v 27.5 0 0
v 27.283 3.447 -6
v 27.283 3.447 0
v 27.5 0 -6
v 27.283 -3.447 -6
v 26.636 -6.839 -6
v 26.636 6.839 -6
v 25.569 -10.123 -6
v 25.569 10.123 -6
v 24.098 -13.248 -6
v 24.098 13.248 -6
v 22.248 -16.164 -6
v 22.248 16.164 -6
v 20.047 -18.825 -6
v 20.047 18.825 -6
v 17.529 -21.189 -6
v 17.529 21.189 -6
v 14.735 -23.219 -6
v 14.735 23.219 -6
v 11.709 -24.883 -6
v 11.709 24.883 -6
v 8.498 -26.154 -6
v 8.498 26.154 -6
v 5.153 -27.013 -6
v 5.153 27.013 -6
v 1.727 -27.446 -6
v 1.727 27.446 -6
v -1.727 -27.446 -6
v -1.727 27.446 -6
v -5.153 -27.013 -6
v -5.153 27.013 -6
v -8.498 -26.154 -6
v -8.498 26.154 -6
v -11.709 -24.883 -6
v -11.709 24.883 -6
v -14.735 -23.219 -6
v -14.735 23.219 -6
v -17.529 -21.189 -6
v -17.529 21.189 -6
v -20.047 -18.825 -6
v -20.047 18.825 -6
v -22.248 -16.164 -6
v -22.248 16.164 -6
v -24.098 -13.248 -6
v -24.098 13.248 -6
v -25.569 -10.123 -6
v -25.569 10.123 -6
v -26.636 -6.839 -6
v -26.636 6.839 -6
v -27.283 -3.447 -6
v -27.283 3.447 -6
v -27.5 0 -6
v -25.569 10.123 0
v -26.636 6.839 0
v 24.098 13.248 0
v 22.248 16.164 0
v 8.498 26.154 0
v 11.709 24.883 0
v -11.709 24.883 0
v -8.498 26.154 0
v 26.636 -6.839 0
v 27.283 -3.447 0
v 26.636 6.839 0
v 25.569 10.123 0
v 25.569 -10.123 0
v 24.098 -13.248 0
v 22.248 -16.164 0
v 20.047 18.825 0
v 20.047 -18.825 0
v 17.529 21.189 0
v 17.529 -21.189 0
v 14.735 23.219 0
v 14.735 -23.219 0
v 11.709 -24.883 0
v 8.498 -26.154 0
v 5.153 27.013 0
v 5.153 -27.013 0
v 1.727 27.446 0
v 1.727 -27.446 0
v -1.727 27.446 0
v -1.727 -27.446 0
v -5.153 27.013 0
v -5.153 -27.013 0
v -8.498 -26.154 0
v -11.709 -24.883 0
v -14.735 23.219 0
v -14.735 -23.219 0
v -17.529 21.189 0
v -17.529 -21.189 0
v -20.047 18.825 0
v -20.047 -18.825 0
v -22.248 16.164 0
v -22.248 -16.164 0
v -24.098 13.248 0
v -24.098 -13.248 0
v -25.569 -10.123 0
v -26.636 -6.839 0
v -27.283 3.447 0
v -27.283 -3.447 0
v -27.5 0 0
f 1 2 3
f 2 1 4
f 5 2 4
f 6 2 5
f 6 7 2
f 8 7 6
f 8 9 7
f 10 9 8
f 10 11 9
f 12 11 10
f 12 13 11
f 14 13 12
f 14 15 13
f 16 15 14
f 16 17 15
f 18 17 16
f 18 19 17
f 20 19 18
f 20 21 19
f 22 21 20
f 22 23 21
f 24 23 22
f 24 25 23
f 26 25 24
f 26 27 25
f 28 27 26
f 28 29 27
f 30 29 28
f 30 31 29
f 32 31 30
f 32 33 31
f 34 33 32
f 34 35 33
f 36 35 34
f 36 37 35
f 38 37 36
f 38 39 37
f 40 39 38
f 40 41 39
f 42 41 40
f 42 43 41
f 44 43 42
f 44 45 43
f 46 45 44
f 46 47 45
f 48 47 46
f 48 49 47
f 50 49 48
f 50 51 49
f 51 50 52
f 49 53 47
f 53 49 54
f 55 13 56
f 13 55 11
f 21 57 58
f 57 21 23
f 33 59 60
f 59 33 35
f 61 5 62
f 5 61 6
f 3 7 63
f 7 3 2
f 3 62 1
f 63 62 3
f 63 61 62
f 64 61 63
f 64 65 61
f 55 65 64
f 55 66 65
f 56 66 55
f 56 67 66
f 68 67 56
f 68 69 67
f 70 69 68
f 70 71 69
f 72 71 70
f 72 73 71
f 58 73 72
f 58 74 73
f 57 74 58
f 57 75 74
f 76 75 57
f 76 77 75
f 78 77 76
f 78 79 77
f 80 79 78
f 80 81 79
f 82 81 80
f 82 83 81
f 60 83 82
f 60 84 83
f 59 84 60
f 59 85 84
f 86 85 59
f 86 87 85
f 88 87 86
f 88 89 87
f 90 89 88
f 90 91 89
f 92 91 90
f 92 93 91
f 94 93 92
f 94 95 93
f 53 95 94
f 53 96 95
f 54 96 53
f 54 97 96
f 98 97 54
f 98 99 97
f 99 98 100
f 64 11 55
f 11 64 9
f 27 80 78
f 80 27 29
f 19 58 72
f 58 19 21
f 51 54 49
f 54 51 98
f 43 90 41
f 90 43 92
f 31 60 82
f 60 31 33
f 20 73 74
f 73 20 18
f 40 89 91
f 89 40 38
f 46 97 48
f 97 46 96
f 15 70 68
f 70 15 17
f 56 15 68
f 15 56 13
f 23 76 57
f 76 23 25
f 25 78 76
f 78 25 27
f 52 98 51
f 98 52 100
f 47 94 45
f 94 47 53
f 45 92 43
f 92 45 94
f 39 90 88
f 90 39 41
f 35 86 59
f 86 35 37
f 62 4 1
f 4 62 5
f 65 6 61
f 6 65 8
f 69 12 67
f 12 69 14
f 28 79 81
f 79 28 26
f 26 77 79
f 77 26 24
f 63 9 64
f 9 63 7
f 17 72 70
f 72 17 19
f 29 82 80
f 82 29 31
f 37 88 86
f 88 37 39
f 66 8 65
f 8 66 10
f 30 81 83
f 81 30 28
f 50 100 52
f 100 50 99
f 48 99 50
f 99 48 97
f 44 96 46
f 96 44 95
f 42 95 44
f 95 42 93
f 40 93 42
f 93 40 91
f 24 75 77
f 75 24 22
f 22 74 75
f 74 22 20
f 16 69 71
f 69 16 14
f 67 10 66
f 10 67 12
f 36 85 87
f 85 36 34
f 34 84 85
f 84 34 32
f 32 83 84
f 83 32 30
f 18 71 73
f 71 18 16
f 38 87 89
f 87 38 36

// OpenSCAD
$fn = 50;


difference() {
	union() {
		cylinder(h = 0, r = 12.5000000000);
		translate(v = [0, 0, -6.0000000000]) {
			cylinder(h = 6, r = 27.5000000000);
		}
	}
	union() {
		#translate(v = [8.0000000000, 0.0000000000, 0]) {
			cylinder(h = 0, r = 3.2500000000);
		}
		#translate(v = [-4.0000000000, 6.9282032303, 0]) {
			cylinder(h = 0, r = 3.2500000000);
		}
		#translate(v = [-4.0000000000, -6.9282032303, 0]) {
			cylinder(h = 0, r = 3.2500000000);
		}
	}
}
